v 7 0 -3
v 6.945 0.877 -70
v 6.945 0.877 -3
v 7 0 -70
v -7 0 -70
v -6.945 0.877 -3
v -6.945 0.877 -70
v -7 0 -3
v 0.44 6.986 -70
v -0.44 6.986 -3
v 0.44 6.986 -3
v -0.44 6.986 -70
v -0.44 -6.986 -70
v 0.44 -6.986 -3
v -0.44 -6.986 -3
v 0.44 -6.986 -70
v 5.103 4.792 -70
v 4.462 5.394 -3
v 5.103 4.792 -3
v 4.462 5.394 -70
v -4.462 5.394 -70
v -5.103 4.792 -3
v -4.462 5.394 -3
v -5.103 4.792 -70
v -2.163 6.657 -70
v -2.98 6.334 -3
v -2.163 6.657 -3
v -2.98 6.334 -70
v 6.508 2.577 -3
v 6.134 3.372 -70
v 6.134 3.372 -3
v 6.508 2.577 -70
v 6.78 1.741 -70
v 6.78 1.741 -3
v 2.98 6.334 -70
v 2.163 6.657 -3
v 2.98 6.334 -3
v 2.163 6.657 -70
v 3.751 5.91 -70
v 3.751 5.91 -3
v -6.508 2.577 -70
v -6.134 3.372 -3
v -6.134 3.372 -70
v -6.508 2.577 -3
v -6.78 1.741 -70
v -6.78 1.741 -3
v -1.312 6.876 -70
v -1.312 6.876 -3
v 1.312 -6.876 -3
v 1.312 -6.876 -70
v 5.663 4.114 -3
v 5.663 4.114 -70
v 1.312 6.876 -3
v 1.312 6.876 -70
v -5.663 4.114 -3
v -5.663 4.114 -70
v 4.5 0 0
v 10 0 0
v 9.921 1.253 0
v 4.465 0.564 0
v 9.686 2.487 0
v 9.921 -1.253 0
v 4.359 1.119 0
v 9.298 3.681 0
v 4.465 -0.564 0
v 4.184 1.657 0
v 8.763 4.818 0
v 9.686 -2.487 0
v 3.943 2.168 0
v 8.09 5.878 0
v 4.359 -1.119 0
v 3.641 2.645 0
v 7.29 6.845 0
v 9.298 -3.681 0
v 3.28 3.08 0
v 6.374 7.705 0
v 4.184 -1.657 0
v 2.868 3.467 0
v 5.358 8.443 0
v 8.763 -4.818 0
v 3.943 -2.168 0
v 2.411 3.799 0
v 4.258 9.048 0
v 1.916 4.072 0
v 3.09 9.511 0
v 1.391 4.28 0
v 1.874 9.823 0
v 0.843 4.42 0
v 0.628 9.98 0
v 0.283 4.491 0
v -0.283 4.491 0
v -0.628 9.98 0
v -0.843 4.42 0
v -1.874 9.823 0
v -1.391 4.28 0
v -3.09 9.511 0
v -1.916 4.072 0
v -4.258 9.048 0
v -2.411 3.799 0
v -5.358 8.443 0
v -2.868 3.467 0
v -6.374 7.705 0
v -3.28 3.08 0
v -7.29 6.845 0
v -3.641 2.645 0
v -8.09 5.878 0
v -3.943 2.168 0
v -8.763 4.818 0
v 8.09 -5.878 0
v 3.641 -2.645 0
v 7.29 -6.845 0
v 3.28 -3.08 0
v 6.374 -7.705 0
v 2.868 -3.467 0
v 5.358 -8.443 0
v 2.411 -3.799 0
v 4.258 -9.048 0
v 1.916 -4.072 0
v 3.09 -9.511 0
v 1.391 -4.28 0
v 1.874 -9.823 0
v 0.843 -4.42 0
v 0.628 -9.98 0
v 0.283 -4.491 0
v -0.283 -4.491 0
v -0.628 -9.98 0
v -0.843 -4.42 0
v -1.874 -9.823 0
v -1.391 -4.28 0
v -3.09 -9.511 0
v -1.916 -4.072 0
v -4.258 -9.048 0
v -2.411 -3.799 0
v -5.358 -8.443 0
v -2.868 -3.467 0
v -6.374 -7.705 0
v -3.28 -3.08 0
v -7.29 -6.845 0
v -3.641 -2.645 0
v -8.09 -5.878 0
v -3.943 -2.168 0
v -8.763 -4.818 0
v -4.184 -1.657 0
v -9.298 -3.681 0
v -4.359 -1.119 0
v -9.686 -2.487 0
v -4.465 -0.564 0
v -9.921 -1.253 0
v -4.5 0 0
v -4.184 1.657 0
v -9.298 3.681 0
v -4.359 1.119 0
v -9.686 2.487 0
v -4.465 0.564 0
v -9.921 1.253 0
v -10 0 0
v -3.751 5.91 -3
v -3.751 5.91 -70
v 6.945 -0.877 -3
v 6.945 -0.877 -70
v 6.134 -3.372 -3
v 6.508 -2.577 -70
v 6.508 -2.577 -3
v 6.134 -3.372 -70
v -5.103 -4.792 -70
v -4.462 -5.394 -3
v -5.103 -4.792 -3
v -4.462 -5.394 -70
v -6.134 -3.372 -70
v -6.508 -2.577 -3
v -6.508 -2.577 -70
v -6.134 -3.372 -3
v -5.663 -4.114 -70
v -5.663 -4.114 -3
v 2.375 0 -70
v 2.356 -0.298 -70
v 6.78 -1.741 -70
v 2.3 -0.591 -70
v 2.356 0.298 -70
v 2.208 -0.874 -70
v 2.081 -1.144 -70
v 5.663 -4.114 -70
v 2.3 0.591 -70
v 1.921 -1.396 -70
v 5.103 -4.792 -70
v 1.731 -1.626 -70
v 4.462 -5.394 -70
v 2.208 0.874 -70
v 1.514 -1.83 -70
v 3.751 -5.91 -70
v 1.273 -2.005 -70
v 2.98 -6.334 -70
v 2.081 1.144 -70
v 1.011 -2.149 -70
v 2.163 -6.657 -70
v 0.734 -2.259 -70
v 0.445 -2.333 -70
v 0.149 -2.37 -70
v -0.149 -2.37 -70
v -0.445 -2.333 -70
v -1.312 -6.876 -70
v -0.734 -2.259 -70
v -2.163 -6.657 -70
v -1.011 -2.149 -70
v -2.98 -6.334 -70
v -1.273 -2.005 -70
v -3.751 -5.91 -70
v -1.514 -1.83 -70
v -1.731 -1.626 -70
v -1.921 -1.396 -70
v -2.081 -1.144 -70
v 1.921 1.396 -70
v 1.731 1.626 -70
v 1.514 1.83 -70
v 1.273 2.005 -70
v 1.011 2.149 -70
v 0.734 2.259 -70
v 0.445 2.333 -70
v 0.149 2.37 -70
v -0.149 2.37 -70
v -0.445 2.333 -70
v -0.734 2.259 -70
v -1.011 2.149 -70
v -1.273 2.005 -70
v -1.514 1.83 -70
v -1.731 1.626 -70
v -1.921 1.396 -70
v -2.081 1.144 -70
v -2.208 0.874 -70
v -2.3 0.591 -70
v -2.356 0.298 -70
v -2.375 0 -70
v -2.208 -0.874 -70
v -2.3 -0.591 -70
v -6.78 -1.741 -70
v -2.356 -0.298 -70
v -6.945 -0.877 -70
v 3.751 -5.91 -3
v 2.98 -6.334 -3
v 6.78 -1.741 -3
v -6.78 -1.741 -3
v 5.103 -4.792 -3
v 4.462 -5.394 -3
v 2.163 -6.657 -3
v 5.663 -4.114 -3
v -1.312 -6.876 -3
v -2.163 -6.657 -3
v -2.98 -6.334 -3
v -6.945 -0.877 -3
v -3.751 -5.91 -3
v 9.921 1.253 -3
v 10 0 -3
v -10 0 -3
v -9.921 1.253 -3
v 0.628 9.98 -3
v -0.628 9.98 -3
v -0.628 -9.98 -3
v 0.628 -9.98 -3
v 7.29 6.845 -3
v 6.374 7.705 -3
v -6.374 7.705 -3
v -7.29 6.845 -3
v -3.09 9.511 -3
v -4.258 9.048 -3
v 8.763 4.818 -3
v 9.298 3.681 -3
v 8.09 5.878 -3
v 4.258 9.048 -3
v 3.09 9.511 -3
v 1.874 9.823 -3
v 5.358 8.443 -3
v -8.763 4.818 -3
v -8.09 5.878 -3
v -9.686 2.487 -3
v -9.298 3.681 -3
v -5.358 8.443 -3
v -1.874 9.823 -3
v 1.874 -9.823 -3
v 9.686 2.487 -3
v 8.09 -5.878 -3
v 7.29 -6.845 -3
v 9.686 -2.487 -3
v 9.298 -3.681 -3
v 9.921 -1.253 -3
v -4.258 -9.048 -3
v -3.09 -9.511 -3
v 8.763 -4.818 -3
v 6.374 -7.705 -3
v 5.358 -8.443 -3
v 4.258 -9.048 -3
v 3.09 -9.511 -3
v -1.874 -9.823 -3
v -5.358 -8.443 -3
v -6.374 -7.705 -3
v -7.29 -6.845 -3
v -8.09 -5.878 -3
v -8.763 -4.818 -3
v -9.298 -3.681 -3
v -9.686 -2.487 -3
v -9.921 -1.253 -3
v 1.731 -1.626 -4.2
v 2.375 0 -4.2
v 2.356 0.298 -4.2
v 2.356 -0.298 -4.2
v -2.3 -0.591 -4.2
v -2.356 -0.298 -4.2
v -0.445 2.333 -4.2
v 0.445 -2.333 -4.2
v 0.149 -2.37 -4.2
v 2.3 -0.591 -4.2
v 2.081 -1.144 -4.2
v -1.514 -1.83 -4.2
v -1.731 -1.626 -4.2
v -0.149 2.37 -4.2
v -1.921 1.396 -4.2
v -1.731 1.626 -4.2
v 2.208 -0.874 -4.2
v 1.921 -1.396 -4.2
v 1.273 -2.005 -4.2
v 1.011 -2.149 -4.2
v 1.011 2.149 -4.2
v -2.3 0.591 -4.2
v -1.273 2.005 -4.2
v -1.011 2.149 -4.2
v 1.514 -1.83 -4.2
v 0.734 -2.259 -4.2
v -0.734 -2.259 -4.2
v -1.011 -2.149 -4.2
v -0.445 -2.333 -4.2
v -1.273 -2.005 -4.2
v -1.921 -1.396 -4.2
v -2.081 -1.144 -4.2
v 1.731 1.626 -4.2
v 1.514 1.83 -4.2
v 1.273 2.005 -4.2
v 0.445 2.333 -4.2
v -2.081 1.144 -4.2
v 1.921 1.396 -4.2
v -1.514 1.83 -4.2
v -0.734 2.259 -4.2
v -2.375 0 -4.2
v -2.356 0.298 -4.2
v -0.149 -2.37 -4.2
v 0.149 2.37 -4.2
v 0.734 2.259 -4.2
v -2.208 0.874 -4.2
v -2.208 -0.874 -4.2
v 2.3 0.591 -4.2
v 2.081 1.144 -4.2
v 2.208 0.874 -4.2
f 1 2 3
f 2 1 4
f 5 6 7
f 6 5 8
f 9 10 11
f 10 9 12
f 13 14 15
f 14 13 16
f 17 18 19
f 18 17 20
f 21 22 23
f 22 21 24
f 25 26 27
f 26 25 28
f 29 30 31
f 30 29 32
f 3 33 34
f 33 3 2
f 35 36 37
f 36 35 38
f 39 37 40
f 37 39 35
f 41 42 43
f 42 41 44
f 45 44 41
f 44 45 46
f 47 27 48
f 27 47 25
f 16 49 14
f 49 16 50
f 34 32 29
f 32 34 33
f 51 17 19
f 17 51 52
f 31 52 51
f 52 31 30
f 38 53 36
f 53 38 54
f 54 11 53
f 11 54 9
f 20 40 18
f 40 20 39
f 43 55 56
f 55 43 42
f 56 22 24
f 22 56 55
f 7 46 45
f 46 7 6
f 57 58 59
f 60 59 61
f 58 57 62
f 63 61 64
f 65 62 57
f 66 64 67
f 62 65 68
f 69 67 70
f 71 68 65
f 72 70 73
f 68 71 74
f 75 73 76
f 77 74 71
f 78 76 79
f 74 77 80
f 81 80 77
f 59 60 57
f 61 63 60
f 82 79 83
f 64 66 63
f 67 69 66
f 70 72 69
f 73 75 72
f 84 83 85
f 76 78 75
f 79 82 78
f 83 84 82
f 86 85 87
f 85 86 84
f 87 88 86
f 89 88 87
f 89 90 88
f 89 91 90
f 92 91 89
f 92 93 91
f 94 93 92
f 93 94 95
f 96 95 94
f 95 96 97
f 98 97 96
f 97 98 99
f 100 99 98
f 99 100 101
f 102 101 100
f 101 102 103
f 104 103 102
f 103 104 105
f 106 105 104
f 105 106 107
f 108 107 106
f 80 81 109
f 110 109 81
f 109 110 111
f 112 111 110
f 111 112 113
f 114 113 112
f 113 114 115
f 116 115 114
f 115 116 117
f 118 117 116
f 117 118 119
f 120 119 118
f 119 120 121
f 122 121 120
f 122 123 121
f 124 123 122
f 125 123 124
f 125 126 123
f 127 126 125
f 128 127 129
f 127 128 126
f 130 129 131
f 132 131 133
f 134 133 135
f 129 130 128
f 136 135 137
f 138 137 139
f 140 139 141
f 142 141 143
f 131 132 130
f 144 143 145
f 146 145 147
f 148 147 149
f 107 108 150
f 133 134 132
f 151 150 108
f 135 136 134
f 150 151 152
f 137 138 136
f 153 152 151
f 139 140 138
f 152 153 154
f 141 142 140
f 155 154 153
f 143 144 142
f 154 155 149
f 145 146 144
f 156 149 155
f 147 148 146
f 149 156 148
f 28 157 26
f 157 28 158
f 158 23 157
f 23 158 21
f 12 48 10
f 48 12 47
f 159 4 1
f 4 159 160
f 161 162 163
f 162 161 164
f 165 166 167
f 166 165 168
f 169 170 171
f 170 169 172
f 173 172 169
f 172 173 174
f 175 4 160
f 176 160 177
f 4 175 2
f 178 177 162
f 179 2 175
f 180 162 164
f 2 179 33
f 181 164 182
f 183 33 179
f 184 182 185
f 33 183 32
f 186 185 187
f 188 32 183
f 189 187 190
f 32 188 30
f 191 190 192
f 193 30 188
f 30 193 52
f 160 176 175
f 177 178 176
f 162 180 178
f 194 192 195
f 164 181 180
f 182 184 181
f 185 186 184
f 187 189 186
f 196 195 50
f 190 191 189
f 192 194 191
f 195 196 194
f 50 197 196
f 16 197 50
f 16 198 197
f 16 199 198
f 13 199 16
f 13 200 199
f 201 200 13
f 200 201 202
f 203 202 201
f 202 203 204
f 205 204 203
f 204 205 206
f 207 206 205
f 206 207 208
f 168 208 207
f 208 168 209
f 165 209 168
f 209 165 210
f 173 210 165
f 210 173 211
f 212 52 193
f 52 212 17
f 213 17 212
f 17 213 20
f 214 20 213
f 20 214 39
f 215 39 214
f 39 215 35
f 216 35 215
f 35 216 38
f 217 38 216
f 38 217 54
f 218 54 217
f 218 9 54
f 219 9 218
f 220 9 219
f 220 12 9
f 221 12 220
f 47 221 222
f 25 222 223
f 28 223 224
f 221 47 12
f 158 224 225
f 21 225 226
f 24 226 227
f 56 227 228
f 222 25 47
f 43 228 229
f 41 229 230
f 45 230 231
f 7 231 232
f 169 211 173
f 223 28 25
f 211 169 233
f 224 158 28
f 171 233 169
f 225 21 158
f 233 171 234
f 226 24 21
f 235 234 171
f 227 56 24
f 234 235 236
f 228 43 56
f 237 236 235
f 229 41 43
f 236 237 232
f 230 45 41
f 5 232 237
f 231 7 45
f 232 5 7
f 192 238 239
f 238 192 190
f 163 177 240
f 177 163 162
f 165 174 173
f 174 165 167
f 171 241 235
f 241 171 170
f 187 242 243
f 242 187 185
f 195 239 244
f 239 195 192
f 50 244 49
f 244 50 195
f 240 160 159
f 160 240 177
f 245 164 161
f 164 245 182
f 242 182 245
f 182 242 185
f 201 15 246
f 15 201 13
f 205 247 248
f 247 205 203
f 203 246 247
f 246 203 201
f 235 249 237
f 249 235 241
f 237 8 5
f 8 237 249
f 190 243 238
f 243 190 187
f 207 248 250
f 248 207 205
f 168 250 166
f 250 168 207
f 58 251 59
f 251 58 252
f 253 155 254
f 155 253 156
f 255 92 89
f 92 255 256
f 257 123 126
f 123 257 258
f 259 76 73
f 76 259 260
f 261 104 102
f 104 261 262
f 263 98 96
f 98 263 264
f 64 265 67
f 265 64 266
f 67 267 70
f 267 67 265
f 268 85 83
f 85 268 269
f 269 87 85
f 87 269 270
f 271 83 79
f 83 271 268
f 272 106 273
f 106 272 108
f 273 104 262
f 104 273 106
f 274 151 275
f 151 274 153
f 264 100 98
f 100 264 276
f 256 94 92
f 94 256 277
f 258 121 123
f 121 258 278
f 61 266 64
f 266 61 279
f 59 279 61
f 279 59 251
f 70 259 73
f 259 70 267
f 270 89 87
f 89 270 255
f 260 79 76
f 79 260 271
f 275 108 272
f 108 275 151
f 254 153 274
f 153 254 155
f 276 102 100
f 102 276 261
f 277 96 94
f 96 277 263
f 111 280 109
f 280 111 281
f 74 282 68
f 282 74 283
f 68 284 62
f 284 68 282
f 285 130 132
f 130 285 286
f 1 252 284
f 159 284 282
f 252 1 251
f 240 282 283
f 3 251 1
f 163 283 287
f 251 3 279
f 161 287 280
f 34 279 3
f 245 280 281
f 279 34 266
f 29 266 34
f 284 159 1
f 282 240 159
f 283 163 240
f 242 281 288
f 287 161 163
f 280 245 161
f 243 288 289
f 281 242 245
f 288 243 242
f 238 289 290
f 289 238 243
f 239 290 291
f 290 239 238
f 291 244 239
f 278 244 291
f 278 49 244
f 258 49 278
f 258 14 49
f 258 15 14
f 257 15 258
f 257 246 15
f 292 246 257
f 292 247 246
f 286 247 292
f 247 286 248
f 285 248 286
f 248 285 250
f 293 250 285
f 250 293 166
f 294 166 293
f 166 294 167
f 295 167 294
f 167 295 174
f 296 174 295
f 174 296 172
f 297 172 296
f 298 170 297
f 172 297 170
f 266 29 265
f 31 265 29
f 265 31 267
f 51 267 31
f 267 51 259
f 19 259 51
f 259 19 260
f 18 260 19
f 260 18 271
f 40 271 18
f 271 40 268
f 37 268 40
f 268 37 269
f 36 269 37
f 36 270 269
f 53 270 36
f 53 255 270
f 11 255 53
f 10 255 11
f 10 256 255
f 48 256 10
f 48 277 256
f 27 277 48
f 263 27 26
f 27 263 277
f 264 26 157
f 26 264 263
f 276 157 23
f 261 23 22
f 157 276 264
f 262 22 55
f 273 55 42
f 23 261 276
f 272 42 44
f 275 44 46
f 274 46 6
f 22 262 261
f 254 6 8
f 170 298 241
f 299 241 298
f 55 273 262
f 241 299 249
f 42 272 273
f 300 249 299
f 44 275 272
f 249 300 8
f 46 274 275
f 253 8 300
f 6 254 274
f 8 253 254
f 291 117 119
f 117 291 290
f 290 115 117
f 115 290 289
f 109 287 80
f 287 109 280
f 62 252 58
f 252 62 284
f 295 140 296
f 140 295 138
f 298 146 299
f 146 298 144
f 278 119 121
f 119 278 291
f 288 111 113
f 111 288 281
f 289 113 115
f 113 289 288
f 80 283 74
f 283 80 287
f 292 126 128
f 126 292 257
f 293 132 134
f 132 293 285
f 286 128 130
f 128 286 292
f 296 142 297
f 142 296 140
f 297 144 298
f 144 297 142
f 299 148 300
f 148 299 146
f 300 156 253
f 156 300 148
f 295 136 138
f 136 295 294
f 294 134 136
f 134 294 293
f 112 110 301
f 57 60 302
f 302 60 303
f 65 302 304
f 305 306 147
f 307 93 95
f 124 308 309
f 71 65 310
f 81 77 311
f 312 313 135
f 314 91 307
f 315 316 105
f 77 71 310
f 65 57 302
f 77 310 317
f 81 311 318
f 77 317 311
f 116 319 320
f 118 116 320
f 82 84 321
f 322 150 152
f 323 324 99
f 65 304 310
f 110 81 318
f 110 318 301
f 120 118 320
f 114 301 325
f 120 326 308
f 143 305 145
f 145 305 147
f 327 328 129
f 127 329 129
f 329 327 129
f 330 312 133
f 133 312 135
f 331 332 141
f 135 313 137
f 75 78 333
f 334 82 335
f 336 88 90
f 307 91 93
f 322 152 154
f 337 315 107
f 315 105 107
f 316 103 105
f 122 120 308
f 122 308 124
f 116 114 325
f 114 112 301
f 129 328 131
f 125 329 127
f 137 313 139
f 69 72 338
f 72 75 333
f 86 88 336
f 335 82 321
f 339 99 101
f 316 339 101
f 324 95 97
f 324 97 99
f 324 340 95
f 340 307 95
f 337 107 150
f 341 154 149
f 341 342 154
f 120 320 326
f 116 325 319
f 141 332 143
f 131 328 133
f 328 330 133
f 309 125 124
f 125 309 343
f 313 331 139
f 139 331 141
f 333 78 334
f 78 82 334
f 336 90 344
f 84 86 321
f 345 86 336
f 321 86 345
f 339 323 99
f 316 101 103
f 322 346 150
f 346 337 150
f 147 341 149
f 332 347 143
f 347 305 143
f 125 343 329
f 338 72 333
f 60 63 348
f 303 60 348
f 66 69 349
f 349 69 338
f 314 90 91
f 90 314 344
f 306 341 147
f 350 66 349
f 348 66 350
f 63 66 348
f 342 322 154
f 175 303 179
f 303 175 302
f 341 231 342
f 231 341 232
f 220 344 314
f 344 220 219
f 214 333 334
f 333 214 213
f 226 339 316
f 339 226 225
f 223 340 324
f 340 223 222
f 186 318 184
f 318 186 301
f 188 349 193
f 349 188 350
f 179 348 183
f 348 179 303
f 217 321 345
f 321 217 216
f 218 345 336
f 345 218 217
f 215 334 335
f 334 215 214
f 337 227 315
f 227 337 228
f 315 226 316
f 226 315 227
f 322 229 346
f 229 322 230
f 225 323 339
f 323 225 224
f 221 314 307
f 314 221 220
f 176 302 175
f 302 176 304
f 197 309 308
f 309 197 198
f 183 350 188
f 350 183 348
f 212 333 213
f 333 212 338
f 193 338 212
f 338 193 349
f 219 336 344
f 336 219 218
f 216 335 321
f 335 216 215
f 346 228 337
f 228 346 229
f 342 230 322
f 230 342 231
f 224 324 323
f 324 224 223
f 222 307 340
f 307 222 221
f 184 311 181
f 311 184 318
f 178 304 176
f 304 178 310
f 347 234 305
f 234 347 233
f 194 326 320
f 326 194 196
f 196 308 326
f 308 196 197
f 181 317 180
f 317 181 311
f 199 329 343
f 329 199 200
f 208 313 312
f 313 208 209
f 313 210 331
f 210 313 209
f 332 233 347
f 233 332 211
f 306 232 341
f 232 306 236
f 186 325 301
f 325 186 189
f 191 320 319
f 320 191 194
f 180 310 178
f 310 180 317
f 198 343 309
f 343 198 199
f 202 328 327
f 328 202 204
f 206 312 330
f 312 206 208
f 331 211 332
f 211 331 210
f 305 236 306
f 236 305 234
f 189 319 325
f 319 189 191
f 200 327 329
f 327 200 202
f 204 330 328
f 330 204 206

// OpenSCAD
$fn = 50;


difference() {
	union() {
		translate(v = [0, 0, -70.0000000000]) {
			cylinder(h = 70, r = 7.0000000000);
		}
		translate(v = [0, 0, -3.0000000000]) {
			cylinder(h = 3, r = 10.0000000000);
		}
	}
	union() {
		translate(v = [0, 0, 0]) {
			rotate(a = [0, 0, 0]) {
				difference() {
					union() {
						#translate(v = [0, 0, -70.0000000000]) {
							cylinder(h = 70, r = 2.2500000000);
						}
						#translate(v = [0, 0, -4.2000000000]) {
							cylinder(h = 4.2000000000, r1 = 2.3750000000, r2 = 4.5000000000);
						}
						#translate(v = [0, 0, -70.0000000000]) {
							cylinder(h = 70, r = 2.3750000000);
						}
						#translate(v = [0, 0, -70.0000000000]) {
							cylinder(h = 70, r = 2.2500000000);
						}
					}
					union();
				}
			}
		}
	}
}
